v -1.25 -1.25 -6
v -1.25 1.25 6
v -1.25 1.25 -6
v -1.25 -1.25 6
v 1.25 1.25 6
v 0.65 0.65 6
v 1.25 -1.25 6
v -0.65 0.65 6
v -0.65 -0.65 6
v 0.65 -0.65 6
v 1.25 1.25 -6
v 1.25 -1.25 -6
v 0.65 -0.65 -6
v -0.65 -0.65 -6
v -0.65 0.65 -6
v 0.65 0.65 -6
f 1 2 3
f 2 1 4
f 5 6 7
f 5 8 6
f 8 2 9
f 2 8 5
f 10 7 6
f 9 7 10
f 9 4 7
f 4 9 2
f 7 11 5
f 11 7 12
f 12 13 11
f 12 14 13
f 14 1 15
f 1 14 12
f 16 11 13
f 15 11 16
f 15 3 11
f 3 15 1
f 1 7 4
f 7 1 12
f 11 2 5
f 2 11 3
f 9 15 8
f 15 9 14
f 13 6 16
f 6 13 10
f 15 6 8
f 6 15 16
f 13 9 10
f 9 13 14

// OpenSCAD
xyz=[2.5,2.5,12];
thickness=0.6;

difference()
{
    cube(xyz,center=true);
    cube(xyz+[-thickness*2,-thickness*2,thickness*2],center=true);
}
